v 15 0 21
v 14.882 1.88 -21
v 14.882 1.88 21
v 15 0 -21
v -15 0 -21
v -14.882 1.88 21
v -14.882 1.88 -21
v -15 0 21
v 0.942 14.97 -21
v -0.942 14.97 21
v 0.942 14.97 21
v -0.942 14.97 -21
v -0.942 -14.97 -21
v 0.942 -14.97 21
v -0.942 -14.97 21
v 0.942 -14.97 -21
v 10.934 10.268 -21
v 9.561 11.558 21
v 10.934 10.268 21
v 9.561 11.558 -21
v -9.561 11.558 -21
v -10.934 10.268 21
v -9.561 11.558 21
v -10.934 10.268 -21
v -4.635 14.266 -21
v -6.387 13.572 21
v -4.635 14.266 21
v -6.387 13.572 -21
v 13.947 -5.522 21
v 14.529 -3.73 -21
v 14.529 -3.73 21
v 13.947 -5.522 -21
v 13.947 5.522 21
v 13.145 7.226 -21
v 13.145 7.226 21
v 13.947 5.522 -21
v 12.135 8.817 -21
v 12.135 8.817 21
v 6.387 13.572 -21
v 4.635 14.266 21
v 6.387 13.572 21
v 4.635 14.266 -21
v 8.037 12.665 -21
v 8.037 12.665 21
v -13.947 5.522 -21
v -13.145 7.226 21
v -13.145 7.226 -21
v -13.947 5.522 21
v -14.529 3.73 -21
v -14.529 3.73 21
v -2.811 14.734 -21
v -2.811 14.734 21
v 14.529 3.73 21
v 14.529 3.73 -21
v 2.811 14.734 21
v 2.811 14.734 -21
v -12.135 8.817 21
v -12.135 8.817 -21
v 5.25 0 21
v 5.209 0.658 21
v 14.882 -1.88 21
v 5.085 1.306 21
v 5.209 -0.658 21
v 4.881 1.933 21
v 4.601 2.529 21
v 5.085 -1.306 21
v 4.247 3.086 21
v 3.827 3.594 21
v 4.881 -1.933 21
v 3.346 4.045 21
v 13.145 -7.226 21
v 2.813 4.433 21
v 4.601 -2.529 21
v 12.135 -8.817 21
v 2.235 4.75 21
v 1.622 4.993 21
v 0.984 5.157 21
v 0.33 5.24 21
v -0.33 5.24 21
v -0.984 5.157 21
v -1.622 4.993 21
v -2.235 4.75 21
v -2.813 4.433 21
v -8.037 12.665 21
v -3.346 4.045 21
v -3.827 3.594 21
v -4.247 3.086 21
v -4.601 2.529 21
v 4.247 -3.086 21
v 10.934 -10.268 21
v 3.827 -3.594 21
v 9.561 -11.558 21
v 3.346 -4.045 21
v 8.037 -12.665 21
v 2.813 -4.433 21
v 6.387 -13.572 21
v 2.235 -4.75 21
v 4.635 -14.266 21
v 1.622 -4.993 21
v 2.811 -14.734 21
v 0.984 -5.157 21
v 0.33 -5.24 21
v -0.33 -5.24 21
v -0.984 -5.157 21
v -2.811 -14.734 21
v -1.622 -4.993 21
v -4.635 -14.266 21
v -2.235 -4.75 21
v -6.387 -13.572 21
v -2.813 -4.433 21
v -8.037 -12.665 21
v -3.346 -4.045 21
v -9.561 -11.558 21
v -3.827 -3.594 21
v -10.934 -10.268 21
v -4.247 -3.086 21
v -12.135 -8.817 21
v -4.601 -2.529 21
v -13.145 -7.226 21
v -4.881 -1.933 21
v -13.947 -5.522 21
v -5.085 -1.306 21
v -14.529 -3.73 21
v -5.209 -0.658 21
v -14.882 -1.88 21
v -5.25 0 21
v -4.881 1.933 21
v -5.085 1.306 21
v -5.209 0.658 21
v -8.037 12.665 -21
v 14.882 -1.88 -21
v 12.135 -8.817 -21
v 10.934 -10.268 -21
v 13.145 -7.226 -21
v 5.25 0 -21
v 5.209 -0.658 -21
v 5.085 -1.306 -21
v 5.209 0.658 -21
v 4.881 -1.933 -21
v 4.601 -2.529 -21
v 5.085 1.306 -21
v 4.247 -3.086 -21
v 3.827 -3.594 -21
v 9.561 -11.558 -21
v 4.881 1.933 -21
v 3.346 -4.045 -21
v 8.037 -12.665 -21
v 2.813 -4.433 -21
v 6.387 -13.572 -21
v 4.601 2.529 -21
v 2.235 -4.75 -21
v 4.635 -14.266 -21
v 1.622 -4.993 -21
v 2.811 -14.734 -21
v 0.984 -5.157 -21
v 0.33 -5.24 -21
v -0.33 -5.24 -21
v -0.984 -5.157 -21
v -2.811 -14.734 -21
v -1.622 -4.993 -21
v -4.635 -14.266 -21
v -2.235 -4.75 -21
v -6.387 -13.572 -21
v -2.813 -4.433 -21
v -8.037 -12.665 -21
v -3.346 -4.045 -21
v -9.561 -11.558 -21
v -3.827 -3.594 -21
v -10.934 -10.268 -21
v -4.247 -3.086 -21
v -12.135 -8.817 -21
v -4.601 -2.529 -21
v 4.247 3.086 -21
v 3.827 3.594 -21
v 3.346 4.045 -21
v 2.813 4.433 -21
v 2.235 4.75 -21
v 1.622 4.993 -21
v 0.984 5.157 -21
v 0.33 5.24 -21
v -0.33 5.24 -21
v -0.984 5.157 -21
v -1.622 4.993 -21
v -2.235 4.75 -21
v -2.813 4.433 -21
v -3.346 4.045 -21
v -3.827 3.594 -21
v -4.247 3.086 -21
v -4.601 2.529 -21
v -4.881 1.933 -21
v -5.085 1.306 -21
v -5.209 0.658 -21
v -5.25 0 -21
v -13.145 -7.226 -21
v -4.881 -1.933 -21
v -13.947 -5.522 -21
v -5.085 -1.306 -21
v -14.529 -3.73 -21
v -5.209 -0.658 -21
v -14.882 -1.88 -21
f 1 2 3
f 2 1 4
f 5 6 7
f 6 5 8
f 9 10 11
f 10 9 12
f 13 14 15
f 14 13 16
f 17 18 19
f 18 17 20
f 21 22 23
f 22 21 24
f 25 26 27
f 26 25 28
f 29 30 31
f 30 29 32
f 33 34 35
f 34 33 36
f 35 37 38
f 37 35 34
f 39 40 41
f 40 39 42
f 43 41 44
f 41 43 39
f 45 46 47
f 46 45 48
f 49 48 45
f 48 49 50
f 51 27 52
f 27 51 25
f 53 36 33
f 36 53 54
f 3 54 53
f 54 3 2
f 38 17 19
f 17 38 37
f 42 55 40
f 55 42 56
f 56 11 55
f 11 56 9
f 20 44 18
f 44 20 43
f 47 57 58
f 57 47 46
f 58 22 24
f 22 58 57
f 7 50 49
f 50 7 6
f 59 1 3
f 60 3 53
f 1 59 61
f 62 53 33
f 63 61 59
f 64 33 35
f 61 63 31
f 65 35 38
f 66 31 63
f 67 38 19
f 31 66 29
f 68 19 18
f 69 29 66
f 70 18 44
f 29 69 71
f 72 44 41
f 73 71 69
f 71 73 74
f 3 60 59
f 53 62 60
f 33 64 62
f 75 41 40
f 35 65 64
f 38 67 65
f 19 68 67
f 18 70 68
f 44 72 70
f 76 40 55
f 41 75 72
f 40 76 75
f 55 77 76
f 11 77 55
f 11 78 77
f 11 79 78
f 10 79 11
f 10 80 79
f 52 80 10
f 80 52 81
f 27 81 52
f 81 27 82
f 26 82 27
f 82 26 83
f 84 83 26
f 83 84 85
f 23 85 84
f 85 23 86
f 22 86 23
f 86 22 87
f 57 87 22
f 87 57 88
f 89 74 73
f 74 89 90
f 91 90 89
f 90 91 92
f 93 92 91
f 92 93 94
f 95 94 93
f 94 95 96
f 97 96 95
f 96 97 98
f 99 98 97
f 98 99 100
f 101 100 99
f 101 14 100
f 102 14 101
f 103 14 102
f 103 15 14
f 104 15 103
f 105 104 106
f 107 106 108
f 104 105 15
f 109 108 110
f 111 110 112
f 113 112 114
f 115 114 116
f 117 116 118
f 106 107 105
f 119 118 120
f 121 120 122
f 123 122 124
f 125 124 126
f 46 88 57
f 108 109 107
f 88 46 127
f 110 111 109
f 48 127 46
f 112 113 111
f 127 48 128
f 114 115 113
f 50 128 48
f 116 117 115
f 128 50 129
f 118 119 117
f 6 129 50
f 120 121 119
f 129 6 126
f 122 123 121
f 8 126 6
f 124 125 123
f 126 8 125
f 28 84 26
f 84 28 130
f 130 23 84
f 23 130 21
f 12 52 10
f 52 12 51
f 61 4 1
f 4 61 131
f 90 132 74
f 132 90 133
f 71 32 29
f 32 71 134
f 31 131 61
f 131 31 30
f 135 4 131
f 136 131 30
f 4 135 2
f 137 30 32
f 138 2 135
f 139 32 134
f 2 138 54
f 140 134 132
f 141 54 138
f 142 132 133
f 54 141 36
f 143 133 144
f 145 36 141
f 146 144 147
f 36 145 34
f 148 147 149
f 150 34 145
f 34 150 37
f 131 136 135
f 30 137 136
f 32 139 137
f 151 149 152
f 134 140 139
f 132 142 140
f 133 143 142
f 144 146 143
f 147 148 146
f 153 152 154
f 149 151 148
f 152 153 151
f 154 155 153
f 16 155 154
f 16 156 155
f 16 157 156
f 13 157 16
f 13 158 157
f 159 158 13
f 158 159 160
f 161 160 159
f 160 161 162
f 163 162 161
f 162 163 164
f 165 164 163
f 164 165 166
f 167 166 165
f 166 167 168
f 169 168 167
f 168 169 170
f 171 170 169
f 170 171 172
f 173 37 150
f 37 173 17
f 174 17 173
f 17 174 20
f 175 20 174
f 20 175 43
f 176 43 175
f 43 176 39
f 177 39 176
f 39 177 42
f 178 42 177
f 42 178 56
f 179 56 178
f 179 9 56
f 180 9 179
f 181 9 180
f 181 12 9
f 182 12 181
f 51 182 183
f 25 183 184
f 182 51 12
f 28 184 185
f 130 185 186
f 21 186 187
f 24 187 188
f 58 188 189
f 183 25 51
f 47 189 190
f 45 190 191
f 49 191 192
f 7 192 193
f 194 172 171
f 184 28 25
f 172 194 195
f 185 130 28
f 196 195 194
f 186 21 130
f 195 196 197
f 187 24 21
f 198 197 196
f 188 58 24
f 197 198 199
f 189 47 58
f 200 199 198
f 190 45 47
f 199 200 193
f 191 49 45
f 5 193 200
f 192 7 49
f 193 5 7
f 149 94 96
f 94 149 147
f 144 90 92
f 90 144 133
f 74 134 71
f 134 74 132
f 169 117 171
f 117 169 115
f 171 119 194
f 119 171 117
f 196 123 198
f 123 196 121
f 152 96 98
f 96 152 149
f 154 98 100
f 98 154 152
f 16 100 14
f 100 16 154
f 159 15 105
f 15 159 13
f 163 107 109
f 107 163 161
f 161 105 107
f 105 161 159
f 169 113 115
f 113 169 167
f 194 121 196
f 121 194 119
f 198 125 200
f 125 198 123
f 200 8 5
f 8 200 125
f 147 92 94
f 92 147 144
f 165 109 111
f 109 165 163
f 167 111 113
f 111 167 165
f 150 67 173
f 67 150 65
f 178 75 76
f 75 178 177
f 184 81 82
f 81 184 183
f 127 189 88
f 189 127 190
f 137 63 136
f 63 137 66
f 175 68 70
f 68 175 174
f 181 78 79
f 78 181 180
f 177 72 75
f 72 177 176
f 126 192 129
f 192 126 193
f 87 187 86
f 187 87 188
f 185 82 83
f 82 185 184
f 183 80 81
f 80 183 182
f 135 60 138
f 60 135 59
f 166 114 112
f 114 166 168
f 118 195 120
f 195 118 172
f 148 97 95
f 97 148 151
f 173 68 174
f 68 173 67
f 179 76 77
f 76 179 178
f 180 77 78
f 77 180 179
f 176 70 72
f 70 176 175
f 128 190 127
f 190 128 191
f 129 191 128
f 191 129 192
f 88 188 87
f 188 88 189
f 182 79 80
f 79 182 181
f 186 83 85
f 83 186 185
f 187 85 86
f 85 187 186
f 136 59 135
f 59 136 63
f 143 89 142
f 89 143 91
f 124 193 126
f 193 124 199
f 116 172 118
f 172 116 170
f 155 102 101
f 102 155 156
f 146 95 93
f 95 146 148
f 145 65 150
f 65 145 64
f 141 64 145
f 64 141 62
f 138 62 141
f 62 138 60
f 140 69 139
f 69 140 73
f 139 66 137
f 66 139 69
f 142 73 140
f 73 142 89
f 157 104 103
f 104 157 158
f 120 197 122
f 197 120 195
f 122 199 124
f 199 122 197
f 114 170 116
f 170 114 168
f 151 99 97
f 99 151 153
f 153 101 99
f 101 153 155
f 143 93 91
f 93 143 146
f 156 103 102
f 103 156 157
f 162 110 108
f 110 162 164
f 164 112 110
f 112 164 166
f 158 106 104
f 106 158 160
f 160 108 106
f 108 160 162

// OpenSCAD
$fn = 50;


difference() {
	union() {
		translate(v = [0, 0, -21.0000000000]) {
			cylinder(h = 42, r = 15.0000000000);
		}
	}
	union() {
		translate(v = [0, 0, -100.0000000000]) {
			cylinder(h = 200, r = 5.2500000000);
		}
	}
}
